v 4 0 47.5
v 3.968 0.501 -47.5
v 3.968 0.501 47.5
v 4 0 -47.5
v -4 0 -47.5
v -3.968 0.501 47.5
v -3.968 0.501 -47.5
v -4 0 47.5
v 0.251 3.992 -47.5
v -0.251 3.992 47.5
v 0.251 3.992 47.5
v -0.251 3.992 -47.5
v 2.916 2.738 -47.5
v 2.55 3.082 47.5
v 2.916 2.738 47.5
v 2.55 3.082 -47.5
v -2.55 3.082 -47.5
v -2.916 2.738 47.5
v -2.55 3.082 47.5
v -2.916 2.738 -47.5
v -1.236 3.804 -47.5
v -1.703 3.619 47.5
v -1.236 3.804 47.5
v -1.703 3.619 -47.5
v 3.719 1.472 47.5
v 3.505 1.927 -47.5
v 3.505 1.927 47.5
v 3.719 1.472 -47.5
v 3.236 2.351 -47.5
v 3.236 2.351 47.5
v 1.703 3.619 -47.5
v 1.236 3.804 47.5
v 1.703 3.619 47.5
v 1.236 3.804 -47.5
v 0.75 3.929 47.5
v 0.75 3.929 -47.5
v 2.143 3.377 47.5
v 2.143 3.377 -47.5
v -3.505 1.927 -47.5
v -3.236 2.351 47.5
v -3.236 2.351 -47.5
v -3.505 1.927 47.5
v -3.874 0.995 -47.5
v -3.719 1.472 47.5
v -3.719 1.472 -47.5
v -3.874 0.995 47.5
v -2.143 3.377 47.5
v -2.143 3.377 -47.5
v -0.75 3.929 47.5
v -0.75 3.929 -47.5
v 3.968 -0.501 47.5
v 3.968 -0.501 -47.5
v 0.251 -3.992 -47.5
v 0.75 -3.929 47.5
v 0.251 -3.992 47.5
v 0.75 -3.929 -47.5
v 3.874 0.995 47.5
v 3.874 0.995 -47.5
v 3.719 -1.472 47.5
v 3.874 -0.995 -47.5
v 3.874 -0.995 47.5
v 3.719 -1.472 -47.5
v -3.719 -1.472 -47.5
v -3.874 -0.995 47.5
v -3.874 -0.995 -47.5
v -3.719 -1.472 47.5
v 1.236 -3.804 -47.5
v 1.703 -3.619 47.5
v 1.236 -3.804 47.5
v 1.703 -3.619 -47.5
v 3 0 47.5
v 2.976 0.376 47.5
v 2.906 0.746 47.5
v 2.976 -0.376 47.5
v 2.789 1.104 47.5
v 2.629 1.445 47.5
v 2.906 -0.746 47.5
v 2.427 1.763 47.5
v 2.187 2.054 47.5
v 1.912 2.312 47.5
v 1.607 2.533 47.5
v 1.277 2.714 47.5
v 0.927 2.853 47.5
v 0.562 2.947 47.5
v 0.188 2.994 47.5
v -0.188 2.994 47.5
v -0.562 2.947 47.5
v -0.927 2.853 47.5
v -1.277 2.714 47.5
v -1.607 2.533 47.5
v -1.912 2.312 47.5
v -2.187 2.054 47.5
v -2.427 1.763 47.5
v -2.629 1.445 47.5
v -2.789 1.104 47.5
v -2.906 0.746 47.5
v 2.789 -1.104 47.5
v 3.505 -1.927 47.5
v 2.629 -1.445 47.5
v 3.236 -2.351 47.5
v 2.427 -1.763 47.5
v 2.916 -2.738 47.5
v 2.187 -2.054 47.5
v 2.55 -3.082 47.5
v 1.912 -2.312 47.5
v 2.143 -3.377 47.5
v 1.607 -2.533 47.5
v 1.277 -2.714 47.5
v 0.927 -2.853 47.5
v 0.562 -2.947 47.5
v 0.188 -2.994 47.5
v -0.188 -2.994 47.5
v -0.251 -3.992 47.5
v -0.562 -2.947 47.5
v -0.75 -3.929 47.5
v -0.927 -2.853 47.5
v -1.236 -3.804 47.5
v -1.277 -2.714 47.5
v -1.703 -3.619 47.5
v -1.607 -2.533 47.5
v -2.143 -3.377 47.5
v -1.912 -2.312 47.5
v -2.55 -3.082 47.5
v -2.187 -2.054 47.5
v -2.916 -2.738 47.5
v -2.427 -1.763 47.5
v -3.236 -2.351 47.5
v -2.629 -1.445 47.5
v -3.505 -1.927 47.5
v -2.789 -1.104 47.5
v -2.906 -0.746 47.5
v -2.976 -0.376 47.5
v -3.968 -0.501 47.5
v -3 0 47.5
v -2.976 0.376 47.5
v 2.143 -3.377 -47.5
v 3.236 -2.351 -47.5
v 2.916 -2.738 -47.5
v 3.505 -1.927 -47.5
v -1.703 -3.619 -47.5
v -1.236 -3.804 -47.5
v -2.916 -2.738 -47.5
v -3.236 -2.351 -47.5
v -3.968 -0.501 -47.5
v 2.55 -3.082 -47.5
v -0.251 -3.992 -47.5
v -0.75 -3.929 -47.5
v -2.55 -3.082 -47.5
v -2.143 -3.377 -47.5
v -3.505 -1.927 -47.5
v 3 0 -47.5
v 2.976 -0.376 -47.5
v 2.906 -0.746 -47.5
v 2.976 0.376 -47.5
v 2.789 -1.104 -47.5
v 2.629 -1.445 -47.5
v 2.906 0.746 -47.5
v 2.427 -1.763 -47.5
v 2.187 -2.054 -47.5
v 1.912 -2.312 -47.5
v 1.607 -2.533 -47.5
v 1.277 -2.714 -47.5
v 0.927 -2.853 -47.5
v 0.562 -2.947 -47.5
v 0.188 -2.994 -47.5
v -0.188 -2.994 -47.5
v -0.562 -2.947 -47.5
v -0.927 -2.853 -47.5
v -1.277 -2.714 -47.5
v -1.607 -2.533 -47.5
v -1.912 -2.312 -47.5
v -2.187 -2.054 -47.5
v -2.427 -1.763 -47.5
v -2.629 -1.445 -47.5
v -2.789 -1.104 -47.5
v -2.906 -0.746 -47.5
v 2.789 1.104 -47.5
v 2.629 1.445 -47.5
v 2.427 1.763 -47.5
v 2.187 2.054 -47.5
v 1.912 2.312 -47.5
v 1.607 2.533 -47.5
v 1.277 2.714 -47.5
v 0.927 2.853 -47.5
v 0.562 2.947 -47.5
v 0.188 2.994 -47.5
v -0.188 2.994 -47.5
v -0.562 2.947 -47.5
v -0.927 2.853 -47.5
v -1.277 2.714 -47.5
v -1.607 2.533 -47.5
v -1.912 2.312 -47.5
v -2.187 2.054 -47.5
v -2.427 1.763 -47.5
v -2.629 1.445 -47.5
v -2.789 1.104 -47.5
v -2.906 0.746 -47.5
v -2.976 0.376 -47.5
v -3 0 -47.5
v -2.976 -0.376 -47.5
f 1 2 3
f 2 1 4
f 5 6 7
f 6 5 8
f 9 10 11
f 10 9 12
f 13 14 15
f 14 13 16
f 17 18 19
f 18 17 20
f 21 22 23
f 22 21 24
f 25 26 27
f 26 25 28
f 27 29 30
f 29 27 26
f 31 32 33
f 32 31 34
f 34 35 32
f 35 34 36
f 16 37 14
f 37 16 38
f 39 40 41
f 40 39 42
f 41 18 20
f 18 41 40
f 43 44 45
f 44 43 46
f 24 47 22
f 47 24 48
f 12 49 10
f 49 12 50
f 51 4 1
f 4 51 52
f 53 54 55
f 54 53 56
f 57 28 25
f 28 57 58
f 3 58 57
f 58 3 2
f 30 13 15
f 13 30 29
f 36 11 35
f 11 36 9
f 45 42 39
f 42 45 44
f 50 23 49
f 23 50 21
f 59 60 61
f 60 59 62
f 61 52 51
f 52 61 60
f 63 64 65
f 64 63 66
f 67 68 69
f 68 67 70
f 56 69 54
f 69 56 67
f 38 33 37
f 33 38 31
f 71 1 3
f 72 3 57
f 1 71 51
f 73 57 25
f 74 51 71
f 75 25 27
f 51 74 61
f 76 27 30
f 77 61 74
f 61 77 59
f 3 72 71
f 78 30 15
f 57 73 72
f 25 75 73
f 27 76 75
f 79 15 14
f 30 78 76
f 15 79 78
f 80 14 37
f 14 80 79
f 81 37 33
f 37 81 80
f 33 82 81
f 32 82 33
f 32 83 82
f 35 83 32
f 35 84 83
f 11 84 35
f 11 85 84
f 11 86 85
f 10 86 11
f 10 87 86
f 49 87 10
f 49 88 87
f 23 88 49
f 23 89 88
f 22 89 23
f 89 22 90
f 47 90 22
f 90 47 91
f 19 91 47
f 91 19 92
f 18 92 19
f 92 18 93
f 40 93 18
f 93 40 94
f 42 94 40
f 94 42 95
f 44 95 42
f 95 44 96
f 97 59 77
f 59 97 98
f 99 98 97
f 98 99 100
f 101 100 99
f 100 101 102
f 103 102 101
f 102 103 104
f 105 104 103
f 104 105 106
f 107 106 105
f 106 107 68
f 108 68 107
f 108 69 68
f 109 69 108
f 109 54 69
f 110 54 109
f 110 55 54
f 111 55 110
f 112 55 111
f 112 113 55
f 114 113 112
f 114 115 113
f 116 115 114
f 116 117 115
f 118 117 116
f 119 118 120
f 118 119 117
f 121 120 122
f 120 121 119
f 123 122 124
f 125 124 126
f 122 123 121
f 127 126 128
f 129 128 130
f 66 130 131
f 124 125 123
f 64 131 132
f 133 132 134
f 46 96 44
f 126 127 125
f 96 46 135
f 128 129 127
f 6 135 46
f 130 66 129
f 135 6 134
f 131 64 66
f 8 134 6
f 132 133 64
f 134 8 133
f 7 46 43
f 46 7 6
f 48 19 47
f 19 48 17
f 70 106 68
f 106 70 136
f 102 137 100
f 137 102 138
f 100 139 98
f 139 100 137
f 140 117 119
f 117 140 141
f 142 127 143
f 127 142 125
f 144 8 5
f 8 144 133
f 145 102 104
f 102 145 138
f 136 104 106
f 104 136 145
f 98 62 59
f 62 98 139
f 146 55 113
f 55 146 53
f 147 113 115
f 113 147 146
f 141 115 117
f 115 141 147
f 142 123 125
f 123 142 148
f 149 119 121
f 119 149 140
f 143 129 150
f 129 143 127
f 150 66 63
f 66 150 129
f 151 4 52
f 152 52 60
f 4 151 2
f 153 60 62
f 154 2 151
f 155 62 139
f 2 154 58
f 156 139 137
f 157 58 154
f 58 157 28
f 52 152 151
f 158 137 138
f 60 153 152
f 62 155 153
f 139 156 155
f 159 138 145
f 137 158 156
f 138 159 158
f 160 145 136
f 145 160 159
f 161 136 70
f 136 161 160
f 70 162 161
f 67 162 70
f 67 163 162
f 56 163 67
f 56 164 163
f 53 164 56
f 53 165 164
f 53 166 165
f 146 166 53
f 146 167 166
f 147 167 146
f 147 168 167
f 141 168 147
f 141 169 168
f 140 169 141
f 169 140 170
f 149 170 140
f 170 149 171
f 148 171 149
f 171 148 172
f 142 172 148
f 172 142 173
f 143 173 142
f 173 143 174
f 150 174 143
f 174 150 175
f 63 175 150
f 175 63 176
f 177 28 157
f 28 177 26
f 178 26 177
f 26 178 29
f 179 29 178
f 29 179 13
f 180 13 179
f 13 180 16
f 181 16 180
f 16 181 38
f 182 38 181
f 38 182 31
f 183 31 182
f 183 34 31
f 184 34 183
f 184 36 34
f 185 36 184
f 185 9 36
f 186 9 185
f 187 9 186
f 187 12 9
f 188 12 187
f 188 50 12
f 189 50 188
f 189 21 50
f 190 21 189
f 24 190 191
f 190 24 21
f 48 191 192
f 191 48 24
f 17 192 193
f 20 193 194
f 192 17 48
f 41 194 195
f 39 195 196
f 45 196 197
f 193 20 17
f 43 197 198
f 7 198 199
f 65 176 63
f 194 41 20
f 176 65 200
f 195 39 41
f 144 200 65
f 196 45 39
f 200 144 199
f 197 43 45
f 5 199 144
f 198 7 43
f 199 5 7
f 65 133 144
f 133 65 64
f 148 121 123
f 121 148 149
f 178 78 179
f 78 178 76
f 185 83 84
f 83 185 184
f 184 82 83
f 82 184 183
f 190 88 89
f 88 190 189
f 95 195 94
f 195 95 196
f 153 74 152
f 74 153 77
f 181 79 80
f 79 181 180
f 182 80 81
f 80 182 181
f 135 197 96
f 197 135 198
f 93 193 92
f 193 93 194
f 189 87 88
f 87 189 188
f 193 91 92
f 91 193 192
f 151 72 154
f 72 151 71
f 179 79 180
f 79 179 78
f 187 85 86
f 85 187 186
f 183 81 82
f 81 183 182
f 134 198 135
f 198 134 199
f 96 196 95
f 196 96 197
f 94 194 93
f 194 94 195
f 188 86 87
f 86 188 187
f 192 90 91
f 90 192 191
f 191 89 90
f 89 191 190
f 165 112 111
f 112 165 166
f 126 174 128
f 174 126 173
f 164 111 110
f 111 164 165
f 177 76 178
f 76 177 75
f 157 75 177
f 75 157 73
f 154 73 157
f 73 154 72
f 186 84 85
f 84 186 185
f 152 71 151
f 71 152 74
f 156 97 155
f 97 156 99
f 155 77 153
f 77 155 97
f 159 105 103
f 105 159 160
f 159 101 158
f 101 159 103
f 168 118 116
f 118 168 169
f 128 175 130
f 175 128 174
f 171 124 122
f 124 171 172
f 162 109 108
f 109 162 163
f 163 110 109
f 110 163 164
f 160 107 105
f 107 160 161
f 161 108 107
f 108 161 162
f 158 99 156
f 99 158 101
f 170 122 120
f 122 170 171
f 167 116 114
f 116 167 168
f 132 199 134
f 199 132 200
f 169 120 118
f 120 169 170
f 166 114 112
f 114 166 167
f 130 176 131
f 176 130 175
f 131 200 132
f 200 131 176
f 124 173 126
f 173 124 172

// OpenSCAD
$fn = 50;


difference() {
	union() {
		translate(v = [0, 0, -47.5000000000]) {
			cylinder(h = 95, r = 4.0000000000);
		}
	}
	union() {
		translate(v = [0, 0, -100.0000000000]) {
			cylinder(h = 200, r = 3.0000000000);
		}
	}
}
